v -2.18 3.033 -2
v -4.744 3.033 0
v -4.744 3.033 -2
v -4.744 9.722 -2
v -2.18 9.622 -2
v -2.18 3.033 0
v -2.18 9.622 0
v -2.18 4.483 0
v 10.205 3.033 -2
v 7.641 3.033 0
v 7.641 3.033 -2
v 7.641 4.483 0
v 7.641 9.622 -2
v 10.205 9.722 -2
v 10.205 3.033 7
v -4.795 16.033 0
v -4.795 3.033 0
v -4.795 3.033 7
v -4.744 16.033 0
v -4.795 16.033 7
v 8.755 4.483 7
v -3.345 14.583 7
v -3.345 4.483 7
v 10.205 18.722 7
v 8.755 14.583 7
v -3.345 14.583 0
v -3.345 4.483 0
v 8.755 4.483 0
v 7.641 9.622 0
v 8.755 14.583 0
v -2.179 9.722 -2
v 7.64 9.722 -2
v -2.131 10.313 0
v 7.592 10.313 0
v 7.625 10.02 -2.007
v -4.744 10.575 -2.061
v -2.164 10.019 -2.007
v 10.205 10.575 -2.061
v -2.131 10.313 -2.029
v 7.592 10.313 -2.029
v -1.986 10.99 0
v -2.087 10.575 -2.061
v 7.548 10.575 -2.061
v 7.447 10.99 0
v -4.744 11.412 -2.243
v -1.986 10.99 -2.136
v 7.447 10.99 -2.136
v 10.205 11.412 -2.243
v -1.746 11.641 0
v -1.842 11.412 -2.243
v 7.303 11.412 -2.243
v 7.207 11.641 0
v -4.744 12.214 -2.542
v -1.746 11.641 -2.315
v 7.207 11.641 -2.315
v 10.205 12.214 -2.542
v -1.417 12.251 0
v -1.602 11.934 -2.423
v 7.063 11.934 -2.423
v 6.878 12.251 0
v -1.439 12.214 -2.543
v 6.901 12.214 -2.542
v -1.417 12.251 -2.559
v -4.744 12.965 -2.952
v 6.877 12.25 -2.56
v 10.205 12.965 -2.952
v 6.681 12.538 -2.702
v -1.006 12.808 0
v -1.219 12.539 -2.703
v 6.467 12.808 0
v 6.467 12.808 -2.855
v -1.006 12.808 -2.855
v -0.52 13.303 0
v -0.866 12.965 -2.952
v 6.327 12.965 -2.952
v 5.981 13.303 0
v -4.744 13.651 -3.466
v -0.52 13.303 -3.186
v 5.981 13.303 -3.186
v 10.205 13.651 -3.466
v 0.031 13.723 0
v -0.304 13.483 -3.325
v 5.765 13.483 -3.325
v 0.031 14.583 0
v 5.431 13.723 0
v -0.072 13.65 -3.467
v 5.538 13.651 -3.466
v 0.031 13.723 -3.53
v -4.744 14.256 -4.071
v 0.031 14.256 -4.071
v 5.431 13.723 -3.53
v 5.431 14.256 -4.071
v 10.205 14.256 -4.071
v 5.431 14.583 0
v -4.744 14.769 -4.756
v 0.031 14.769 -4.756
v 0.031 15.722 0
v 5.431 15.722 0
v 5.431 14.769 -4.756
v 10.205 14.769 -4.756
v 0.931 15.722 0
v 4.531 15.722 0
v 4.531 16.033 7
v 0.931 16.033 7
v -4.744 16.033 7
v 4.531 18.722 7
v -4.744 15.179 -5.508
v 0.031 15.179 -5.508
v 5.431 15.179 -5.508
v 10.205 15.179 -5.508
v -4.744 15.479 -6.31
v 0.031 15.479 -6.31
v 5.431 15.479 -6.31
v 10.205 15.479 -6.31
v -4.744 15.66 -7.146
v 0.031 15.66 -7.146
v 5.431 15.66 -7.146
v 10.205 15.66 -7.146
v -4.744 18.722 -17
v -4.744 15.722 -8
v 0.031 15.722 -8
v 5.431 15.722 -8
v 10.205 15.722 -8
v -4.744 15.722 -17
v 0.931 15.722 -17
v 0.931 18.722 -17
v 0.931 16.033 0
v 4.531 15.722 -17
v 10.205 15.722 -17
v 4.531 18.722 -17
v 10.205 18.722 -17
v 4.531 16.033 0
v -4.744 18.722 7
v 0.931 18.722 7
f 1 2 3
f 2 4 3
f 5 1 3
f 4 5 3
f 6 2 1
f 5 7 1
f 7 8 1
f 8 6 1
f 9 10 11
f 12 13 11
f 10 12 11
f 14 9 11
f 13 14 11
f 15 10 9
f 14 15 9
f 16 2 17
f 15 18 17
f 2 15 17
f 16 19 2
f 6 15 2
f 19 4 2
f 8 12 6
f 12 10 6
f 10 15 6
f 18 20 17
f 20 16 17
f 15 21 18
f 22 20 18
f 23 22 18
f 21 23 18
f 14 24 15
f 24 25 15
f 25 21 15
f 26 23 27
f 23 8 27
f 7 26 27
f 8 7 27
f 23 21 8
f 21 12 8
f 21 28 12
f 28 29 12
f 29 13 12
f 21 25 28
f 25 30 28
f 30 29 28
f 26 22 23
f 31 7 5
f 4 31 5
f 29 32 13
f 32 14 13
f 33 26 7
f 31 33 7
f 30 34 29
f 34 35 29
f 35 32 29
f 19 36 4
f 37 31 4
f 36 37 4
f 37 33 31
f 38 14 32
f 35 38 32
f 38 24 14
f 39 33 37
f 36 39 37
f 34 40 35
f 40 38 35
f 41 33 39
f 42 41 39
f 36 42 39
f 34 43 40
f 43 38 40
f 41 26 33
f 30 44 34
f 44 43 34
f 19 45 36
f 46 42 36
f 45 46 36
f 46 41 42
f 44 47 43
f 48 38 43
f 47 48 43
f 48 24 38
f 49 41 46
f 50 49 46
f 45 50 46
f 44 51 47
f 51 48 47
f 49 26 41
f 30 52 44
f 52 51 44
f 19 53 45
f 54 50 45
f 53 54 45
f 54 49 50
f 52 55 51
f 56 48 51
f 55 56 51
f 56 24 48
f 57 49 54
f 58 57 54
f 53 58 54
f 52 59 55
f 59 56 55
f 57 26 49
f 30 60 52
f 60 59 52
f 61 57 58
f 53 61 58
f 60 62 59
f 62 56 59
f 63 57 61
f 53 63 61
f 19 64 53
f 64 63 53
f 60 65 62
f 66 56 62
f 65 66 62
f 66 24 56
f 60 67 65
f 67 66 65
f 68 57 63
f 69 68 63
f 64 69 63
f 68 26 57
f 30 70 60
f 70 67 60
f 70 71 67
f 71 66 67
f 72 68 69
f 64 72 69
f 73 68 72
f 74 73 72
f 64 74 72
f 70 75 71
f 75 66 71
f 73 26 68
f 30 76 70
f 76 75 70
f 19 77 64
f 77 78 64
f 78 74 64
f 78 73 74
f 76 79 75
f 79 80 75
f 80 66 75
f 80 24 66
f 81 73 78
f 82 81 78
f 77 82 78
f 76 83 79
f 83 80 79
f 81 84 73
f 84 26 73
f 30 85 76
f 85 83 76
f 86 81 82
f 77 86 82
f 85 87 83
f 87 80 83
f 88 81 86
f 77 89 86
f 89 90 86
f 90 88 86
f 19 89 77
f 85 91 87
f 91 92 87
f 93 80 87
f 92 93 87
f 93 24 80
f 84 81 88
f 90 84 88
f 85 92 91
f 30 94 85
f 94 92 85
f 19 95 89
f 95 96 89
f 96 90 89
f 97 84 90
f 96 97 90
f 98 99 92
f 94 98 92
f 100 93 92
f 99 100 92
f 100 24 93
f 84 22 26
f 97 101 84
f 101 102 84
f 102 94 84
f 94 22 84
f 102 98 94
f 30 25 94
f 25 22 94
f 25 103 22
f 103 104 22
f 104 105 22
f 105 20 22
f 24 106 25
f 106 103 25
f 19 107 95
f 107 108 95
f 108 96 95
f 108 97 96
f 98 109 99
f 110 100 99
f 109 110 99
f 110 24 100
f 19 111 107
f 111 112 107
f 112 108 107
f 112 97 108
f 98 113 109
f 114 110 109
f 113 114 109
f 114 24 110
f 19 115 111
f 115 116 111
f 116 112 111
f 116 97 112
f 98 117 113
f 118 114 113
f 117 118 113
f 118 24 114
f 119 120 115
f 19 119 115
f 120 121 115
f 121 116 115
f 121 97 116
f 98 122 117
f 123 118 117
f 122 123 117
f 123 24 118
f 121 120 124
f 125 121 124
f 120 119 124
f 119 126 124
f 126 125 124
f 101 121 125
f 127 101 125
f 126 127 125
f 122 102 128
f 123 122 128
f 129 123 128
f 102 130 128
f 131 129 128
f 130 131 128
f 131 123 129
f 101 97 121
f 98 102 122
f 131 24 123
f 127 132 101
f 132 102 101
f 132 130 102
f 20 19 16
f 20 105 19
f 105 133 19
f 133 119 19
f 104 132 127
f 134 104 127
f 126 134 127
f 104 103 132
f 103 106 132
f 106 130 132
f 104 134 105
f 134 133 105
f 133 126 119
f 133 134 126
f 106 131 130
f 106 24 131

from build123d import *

# Parameters (mm, degrees)
SKETCH1_W                = 15
SKETCH1_H                = 13
SKETCH1_W_2              = 12.1
SKETCH1_H_2              = 10.1
BOSS_EXTRUDE1_DEPTH      = 7
BOSS_EXTRUDE2_DEPTH      = 17
BOSS_EXTRUDE2_DEPTH_BACK = 7
SKETCH2_W                = 5.674885541
SKETCH2_H                = 3
BOSS_EXTRUDE3_DEPTH      = 2
FILLET1_START            = -4.744281145
FILLET1_DEPTH            = 3.685449278
FILLET1_START_2          = 7.64136832
FILLET1_2_DEPTH          = 2.564121617
FILLET1_START_3          = 5.430604396
FILLET1_3_DEPTH          = 2.210763824
FILLET1_START_4          = -1.058831867
FILLET1_4_DEPTH          = 1.089436263
FILLET1_START_5          = -8
FILLET1_5_DEPTH          = 6


with BuildPart() as part:
    # Sketch1 → Boss-Extrude1 (new body)
    with BuildSketch(Plane.XY):
        with Locations((2.705489937, 9.533064254)):
            Rectangle(SKETCH1_W, SKETCH1_H)
        with Locations((2.705489937, 9.533064254)):
            Rectangle(SKETCH1_W_2, SKETCH1_H_2, mode=Mode.SUBTRACT)
    extrude(amount=BOSS_EXTRUDE1_DEPTH)

    # Sketch2 → Boss-Extrude2 (add, two sides: drawn at the far end of the back side and taken through both)
    with BuildSketch(Plane(origin=(0, 0, 0), x_dir=(-1, 0, 0), z_dir=(0, 0, -1)).offset(-BOSS_EXTRUDE2_DEPTH_BACK)):
        with Locations((-7.368047167, 17.22155756)):
            Rectangle(SKETCH2_W, SKETCH2_H)
        with Locations((1.906838375, 17.22155756)):
            Rectangle(SKETCH2_W, SKETCH2_H)
    extrude(amount=BOSS_EXTRUDE2_DEPTH + BOSS_EXTRUDE2_DEPTH_BACK)

    # Sketch3 → Boss-Extrude3 (add)
    with BuildSketch(Plane(origin=(0, 0, 0), x_dir=(-1, 0, 0), z_dir=(0, 0, -1))):
        with BuildLine():
            Line((-10.205489937, 15.72155756), (-5.430604396, 15.72155756))
            Line((-5.430604396, 15.72155756), (-5.430604396, 13.72345972))
            ThreePointArc((-5.430604396, 13.72345972), (-7.053489061, 11.951422257), (-7.64136822, 9.62155756))
            Line((-7.64136822, 9.62155756), (-7.64136822, 3.033064254))
            Line((-7.64136822, 3.033064254), (-10.205489937, 3.033064254))
            Line((-10.205489937, 3.033064254), (-10.205489937, 9.62155756))
            Line((-10.205489937, 9.62155756), (-10.205489937, 13.72345972))
            Line((-10.205489937, 13.72345972), (-10.205489937, 15.72155756))
        make_face()
        with BuildLine():
            Line((4.744281145, 15.72155756), (4.744281145, 13.72345972))
            Line((4.744281145, 13.72345972), (4.744281145, 9.62155756))
            Line((4.744281145, 9.62155756), (4.744281145, 3.033064254))
            Line((4.744281145, 3.033064254), (2.180159427, 3.033064254))
            Line((2.180159427, 3.033064254), (2.180159427, 9.62155756))
            ThreePointArc((2.180159427, 9.62155756), (1.592280269, 11.951422257), (-0.030604396, 13.72345972))
            Line((-0.030604396, 13.72345972), (-0.030604396, 15.72155756))
            Line((-0.030604396, 15.72155756), (4.744281145, 15.72155756))
        make_face()
    extrude(amount=BOSS_EXTRUDE3_DEPTH)

    # Fillet1: read off the stored shape, not the designer's step
    # Fillet1 outline → Fillet1 (add)
    with BuildSketch(Plane.YZ.offset(FILLET1_START)):
        with BuildLine():
            ThreePointArc((9.72155756, -2), (13.964198247, -3.757359313), (15.72155756, -8))
            Line((15.72155756, -8), (15.72155756, -2))
            Line((15.72155756, -2), (9.72155756, -2))
        make_face()
    extrude(amount=FILLET1_DEPTH)

    # Fillet1 2 outline → Fillet1 2 (add)
    with BuildSketch(Plane.YZ.offset(FILLET1_START_2)):
        with BuildLine():
            ThreePointArc((9.72155756, -2), (13.964198247, -3.757359313), (15.72155756, -8))
            Line((15.72155756, -8), (15.72155756, -2))
            Line((15.72155756, -2), (9.72155756, -2))
        make_face()
    extrude(amount=FILLET1_2_DEPTH)

    # Fillet1 3 outline → Fillet1 3 (add)
    with BuildSketch(Plane.YZ.offset(FILLET1_START_3)):
        with BuildLine():
            ThreePointArc((9.72155756, -2), (13.964198247, -3.757359313), (15.72155756, -8))
            Line((15.72155756, -8), (15.72155756, -2))
            Line((15.72155756, -2), (9.72155756, -2))
        make_face()
    extrude(amount=FILLET1_3_DEPTH)

    # Fillet1 4 outline → Fillet1 4 (add)
    with BuildSketch(Plane.YZ.offset(FILLET1_START_4)):
        with BuildLine():
            ThreePointArc((9.72155756, -2), (13.964198247, -3.757359313), (15.72155756, -8))
            Line((15.72155756, -8), (15.72155756, -2))
            Line((15.72155756, -2), (9.72155756, -2))
        make_face()
    extrude(amount=FILLET1_4_DEPTH)

    # Fillet1 5 outline → Fillet1 5 (cut)
    with BuildSketch(Plane.XY.offset(FILLET1_START_5)):
        with BuildLine():
            Line((7.64136822, 8), (7.64136822, 9.62155756))
            ThreePointArc((7.64136822, 9.62155756), (7.053489061, 11.951422256), (5.430604396, 13.72345972))
            Line((5.430604396, 13.72345972), (5.430604396, 8))
            Line((5.430604396, 8), (7.64136822, 8))
        make_face()
        with BuildLine():
            Line((-2.180159426, 8), (0.030604396, 8))
            Line((0.030604396, 8), (0.030604396, 13.72345972))
            ThreePointArc((0.030604396, 13.72345972), (-1.592280269, 11.951422257), (-2.180159427, 9.62155756))
            Line((-2.180159427, 9.62155756), (-2.180159426, 8))
        make_face()
    extrude(amount=FILLET1_5_DEPTH, mode=Mode.SUBTRACT)


solid = part.part
